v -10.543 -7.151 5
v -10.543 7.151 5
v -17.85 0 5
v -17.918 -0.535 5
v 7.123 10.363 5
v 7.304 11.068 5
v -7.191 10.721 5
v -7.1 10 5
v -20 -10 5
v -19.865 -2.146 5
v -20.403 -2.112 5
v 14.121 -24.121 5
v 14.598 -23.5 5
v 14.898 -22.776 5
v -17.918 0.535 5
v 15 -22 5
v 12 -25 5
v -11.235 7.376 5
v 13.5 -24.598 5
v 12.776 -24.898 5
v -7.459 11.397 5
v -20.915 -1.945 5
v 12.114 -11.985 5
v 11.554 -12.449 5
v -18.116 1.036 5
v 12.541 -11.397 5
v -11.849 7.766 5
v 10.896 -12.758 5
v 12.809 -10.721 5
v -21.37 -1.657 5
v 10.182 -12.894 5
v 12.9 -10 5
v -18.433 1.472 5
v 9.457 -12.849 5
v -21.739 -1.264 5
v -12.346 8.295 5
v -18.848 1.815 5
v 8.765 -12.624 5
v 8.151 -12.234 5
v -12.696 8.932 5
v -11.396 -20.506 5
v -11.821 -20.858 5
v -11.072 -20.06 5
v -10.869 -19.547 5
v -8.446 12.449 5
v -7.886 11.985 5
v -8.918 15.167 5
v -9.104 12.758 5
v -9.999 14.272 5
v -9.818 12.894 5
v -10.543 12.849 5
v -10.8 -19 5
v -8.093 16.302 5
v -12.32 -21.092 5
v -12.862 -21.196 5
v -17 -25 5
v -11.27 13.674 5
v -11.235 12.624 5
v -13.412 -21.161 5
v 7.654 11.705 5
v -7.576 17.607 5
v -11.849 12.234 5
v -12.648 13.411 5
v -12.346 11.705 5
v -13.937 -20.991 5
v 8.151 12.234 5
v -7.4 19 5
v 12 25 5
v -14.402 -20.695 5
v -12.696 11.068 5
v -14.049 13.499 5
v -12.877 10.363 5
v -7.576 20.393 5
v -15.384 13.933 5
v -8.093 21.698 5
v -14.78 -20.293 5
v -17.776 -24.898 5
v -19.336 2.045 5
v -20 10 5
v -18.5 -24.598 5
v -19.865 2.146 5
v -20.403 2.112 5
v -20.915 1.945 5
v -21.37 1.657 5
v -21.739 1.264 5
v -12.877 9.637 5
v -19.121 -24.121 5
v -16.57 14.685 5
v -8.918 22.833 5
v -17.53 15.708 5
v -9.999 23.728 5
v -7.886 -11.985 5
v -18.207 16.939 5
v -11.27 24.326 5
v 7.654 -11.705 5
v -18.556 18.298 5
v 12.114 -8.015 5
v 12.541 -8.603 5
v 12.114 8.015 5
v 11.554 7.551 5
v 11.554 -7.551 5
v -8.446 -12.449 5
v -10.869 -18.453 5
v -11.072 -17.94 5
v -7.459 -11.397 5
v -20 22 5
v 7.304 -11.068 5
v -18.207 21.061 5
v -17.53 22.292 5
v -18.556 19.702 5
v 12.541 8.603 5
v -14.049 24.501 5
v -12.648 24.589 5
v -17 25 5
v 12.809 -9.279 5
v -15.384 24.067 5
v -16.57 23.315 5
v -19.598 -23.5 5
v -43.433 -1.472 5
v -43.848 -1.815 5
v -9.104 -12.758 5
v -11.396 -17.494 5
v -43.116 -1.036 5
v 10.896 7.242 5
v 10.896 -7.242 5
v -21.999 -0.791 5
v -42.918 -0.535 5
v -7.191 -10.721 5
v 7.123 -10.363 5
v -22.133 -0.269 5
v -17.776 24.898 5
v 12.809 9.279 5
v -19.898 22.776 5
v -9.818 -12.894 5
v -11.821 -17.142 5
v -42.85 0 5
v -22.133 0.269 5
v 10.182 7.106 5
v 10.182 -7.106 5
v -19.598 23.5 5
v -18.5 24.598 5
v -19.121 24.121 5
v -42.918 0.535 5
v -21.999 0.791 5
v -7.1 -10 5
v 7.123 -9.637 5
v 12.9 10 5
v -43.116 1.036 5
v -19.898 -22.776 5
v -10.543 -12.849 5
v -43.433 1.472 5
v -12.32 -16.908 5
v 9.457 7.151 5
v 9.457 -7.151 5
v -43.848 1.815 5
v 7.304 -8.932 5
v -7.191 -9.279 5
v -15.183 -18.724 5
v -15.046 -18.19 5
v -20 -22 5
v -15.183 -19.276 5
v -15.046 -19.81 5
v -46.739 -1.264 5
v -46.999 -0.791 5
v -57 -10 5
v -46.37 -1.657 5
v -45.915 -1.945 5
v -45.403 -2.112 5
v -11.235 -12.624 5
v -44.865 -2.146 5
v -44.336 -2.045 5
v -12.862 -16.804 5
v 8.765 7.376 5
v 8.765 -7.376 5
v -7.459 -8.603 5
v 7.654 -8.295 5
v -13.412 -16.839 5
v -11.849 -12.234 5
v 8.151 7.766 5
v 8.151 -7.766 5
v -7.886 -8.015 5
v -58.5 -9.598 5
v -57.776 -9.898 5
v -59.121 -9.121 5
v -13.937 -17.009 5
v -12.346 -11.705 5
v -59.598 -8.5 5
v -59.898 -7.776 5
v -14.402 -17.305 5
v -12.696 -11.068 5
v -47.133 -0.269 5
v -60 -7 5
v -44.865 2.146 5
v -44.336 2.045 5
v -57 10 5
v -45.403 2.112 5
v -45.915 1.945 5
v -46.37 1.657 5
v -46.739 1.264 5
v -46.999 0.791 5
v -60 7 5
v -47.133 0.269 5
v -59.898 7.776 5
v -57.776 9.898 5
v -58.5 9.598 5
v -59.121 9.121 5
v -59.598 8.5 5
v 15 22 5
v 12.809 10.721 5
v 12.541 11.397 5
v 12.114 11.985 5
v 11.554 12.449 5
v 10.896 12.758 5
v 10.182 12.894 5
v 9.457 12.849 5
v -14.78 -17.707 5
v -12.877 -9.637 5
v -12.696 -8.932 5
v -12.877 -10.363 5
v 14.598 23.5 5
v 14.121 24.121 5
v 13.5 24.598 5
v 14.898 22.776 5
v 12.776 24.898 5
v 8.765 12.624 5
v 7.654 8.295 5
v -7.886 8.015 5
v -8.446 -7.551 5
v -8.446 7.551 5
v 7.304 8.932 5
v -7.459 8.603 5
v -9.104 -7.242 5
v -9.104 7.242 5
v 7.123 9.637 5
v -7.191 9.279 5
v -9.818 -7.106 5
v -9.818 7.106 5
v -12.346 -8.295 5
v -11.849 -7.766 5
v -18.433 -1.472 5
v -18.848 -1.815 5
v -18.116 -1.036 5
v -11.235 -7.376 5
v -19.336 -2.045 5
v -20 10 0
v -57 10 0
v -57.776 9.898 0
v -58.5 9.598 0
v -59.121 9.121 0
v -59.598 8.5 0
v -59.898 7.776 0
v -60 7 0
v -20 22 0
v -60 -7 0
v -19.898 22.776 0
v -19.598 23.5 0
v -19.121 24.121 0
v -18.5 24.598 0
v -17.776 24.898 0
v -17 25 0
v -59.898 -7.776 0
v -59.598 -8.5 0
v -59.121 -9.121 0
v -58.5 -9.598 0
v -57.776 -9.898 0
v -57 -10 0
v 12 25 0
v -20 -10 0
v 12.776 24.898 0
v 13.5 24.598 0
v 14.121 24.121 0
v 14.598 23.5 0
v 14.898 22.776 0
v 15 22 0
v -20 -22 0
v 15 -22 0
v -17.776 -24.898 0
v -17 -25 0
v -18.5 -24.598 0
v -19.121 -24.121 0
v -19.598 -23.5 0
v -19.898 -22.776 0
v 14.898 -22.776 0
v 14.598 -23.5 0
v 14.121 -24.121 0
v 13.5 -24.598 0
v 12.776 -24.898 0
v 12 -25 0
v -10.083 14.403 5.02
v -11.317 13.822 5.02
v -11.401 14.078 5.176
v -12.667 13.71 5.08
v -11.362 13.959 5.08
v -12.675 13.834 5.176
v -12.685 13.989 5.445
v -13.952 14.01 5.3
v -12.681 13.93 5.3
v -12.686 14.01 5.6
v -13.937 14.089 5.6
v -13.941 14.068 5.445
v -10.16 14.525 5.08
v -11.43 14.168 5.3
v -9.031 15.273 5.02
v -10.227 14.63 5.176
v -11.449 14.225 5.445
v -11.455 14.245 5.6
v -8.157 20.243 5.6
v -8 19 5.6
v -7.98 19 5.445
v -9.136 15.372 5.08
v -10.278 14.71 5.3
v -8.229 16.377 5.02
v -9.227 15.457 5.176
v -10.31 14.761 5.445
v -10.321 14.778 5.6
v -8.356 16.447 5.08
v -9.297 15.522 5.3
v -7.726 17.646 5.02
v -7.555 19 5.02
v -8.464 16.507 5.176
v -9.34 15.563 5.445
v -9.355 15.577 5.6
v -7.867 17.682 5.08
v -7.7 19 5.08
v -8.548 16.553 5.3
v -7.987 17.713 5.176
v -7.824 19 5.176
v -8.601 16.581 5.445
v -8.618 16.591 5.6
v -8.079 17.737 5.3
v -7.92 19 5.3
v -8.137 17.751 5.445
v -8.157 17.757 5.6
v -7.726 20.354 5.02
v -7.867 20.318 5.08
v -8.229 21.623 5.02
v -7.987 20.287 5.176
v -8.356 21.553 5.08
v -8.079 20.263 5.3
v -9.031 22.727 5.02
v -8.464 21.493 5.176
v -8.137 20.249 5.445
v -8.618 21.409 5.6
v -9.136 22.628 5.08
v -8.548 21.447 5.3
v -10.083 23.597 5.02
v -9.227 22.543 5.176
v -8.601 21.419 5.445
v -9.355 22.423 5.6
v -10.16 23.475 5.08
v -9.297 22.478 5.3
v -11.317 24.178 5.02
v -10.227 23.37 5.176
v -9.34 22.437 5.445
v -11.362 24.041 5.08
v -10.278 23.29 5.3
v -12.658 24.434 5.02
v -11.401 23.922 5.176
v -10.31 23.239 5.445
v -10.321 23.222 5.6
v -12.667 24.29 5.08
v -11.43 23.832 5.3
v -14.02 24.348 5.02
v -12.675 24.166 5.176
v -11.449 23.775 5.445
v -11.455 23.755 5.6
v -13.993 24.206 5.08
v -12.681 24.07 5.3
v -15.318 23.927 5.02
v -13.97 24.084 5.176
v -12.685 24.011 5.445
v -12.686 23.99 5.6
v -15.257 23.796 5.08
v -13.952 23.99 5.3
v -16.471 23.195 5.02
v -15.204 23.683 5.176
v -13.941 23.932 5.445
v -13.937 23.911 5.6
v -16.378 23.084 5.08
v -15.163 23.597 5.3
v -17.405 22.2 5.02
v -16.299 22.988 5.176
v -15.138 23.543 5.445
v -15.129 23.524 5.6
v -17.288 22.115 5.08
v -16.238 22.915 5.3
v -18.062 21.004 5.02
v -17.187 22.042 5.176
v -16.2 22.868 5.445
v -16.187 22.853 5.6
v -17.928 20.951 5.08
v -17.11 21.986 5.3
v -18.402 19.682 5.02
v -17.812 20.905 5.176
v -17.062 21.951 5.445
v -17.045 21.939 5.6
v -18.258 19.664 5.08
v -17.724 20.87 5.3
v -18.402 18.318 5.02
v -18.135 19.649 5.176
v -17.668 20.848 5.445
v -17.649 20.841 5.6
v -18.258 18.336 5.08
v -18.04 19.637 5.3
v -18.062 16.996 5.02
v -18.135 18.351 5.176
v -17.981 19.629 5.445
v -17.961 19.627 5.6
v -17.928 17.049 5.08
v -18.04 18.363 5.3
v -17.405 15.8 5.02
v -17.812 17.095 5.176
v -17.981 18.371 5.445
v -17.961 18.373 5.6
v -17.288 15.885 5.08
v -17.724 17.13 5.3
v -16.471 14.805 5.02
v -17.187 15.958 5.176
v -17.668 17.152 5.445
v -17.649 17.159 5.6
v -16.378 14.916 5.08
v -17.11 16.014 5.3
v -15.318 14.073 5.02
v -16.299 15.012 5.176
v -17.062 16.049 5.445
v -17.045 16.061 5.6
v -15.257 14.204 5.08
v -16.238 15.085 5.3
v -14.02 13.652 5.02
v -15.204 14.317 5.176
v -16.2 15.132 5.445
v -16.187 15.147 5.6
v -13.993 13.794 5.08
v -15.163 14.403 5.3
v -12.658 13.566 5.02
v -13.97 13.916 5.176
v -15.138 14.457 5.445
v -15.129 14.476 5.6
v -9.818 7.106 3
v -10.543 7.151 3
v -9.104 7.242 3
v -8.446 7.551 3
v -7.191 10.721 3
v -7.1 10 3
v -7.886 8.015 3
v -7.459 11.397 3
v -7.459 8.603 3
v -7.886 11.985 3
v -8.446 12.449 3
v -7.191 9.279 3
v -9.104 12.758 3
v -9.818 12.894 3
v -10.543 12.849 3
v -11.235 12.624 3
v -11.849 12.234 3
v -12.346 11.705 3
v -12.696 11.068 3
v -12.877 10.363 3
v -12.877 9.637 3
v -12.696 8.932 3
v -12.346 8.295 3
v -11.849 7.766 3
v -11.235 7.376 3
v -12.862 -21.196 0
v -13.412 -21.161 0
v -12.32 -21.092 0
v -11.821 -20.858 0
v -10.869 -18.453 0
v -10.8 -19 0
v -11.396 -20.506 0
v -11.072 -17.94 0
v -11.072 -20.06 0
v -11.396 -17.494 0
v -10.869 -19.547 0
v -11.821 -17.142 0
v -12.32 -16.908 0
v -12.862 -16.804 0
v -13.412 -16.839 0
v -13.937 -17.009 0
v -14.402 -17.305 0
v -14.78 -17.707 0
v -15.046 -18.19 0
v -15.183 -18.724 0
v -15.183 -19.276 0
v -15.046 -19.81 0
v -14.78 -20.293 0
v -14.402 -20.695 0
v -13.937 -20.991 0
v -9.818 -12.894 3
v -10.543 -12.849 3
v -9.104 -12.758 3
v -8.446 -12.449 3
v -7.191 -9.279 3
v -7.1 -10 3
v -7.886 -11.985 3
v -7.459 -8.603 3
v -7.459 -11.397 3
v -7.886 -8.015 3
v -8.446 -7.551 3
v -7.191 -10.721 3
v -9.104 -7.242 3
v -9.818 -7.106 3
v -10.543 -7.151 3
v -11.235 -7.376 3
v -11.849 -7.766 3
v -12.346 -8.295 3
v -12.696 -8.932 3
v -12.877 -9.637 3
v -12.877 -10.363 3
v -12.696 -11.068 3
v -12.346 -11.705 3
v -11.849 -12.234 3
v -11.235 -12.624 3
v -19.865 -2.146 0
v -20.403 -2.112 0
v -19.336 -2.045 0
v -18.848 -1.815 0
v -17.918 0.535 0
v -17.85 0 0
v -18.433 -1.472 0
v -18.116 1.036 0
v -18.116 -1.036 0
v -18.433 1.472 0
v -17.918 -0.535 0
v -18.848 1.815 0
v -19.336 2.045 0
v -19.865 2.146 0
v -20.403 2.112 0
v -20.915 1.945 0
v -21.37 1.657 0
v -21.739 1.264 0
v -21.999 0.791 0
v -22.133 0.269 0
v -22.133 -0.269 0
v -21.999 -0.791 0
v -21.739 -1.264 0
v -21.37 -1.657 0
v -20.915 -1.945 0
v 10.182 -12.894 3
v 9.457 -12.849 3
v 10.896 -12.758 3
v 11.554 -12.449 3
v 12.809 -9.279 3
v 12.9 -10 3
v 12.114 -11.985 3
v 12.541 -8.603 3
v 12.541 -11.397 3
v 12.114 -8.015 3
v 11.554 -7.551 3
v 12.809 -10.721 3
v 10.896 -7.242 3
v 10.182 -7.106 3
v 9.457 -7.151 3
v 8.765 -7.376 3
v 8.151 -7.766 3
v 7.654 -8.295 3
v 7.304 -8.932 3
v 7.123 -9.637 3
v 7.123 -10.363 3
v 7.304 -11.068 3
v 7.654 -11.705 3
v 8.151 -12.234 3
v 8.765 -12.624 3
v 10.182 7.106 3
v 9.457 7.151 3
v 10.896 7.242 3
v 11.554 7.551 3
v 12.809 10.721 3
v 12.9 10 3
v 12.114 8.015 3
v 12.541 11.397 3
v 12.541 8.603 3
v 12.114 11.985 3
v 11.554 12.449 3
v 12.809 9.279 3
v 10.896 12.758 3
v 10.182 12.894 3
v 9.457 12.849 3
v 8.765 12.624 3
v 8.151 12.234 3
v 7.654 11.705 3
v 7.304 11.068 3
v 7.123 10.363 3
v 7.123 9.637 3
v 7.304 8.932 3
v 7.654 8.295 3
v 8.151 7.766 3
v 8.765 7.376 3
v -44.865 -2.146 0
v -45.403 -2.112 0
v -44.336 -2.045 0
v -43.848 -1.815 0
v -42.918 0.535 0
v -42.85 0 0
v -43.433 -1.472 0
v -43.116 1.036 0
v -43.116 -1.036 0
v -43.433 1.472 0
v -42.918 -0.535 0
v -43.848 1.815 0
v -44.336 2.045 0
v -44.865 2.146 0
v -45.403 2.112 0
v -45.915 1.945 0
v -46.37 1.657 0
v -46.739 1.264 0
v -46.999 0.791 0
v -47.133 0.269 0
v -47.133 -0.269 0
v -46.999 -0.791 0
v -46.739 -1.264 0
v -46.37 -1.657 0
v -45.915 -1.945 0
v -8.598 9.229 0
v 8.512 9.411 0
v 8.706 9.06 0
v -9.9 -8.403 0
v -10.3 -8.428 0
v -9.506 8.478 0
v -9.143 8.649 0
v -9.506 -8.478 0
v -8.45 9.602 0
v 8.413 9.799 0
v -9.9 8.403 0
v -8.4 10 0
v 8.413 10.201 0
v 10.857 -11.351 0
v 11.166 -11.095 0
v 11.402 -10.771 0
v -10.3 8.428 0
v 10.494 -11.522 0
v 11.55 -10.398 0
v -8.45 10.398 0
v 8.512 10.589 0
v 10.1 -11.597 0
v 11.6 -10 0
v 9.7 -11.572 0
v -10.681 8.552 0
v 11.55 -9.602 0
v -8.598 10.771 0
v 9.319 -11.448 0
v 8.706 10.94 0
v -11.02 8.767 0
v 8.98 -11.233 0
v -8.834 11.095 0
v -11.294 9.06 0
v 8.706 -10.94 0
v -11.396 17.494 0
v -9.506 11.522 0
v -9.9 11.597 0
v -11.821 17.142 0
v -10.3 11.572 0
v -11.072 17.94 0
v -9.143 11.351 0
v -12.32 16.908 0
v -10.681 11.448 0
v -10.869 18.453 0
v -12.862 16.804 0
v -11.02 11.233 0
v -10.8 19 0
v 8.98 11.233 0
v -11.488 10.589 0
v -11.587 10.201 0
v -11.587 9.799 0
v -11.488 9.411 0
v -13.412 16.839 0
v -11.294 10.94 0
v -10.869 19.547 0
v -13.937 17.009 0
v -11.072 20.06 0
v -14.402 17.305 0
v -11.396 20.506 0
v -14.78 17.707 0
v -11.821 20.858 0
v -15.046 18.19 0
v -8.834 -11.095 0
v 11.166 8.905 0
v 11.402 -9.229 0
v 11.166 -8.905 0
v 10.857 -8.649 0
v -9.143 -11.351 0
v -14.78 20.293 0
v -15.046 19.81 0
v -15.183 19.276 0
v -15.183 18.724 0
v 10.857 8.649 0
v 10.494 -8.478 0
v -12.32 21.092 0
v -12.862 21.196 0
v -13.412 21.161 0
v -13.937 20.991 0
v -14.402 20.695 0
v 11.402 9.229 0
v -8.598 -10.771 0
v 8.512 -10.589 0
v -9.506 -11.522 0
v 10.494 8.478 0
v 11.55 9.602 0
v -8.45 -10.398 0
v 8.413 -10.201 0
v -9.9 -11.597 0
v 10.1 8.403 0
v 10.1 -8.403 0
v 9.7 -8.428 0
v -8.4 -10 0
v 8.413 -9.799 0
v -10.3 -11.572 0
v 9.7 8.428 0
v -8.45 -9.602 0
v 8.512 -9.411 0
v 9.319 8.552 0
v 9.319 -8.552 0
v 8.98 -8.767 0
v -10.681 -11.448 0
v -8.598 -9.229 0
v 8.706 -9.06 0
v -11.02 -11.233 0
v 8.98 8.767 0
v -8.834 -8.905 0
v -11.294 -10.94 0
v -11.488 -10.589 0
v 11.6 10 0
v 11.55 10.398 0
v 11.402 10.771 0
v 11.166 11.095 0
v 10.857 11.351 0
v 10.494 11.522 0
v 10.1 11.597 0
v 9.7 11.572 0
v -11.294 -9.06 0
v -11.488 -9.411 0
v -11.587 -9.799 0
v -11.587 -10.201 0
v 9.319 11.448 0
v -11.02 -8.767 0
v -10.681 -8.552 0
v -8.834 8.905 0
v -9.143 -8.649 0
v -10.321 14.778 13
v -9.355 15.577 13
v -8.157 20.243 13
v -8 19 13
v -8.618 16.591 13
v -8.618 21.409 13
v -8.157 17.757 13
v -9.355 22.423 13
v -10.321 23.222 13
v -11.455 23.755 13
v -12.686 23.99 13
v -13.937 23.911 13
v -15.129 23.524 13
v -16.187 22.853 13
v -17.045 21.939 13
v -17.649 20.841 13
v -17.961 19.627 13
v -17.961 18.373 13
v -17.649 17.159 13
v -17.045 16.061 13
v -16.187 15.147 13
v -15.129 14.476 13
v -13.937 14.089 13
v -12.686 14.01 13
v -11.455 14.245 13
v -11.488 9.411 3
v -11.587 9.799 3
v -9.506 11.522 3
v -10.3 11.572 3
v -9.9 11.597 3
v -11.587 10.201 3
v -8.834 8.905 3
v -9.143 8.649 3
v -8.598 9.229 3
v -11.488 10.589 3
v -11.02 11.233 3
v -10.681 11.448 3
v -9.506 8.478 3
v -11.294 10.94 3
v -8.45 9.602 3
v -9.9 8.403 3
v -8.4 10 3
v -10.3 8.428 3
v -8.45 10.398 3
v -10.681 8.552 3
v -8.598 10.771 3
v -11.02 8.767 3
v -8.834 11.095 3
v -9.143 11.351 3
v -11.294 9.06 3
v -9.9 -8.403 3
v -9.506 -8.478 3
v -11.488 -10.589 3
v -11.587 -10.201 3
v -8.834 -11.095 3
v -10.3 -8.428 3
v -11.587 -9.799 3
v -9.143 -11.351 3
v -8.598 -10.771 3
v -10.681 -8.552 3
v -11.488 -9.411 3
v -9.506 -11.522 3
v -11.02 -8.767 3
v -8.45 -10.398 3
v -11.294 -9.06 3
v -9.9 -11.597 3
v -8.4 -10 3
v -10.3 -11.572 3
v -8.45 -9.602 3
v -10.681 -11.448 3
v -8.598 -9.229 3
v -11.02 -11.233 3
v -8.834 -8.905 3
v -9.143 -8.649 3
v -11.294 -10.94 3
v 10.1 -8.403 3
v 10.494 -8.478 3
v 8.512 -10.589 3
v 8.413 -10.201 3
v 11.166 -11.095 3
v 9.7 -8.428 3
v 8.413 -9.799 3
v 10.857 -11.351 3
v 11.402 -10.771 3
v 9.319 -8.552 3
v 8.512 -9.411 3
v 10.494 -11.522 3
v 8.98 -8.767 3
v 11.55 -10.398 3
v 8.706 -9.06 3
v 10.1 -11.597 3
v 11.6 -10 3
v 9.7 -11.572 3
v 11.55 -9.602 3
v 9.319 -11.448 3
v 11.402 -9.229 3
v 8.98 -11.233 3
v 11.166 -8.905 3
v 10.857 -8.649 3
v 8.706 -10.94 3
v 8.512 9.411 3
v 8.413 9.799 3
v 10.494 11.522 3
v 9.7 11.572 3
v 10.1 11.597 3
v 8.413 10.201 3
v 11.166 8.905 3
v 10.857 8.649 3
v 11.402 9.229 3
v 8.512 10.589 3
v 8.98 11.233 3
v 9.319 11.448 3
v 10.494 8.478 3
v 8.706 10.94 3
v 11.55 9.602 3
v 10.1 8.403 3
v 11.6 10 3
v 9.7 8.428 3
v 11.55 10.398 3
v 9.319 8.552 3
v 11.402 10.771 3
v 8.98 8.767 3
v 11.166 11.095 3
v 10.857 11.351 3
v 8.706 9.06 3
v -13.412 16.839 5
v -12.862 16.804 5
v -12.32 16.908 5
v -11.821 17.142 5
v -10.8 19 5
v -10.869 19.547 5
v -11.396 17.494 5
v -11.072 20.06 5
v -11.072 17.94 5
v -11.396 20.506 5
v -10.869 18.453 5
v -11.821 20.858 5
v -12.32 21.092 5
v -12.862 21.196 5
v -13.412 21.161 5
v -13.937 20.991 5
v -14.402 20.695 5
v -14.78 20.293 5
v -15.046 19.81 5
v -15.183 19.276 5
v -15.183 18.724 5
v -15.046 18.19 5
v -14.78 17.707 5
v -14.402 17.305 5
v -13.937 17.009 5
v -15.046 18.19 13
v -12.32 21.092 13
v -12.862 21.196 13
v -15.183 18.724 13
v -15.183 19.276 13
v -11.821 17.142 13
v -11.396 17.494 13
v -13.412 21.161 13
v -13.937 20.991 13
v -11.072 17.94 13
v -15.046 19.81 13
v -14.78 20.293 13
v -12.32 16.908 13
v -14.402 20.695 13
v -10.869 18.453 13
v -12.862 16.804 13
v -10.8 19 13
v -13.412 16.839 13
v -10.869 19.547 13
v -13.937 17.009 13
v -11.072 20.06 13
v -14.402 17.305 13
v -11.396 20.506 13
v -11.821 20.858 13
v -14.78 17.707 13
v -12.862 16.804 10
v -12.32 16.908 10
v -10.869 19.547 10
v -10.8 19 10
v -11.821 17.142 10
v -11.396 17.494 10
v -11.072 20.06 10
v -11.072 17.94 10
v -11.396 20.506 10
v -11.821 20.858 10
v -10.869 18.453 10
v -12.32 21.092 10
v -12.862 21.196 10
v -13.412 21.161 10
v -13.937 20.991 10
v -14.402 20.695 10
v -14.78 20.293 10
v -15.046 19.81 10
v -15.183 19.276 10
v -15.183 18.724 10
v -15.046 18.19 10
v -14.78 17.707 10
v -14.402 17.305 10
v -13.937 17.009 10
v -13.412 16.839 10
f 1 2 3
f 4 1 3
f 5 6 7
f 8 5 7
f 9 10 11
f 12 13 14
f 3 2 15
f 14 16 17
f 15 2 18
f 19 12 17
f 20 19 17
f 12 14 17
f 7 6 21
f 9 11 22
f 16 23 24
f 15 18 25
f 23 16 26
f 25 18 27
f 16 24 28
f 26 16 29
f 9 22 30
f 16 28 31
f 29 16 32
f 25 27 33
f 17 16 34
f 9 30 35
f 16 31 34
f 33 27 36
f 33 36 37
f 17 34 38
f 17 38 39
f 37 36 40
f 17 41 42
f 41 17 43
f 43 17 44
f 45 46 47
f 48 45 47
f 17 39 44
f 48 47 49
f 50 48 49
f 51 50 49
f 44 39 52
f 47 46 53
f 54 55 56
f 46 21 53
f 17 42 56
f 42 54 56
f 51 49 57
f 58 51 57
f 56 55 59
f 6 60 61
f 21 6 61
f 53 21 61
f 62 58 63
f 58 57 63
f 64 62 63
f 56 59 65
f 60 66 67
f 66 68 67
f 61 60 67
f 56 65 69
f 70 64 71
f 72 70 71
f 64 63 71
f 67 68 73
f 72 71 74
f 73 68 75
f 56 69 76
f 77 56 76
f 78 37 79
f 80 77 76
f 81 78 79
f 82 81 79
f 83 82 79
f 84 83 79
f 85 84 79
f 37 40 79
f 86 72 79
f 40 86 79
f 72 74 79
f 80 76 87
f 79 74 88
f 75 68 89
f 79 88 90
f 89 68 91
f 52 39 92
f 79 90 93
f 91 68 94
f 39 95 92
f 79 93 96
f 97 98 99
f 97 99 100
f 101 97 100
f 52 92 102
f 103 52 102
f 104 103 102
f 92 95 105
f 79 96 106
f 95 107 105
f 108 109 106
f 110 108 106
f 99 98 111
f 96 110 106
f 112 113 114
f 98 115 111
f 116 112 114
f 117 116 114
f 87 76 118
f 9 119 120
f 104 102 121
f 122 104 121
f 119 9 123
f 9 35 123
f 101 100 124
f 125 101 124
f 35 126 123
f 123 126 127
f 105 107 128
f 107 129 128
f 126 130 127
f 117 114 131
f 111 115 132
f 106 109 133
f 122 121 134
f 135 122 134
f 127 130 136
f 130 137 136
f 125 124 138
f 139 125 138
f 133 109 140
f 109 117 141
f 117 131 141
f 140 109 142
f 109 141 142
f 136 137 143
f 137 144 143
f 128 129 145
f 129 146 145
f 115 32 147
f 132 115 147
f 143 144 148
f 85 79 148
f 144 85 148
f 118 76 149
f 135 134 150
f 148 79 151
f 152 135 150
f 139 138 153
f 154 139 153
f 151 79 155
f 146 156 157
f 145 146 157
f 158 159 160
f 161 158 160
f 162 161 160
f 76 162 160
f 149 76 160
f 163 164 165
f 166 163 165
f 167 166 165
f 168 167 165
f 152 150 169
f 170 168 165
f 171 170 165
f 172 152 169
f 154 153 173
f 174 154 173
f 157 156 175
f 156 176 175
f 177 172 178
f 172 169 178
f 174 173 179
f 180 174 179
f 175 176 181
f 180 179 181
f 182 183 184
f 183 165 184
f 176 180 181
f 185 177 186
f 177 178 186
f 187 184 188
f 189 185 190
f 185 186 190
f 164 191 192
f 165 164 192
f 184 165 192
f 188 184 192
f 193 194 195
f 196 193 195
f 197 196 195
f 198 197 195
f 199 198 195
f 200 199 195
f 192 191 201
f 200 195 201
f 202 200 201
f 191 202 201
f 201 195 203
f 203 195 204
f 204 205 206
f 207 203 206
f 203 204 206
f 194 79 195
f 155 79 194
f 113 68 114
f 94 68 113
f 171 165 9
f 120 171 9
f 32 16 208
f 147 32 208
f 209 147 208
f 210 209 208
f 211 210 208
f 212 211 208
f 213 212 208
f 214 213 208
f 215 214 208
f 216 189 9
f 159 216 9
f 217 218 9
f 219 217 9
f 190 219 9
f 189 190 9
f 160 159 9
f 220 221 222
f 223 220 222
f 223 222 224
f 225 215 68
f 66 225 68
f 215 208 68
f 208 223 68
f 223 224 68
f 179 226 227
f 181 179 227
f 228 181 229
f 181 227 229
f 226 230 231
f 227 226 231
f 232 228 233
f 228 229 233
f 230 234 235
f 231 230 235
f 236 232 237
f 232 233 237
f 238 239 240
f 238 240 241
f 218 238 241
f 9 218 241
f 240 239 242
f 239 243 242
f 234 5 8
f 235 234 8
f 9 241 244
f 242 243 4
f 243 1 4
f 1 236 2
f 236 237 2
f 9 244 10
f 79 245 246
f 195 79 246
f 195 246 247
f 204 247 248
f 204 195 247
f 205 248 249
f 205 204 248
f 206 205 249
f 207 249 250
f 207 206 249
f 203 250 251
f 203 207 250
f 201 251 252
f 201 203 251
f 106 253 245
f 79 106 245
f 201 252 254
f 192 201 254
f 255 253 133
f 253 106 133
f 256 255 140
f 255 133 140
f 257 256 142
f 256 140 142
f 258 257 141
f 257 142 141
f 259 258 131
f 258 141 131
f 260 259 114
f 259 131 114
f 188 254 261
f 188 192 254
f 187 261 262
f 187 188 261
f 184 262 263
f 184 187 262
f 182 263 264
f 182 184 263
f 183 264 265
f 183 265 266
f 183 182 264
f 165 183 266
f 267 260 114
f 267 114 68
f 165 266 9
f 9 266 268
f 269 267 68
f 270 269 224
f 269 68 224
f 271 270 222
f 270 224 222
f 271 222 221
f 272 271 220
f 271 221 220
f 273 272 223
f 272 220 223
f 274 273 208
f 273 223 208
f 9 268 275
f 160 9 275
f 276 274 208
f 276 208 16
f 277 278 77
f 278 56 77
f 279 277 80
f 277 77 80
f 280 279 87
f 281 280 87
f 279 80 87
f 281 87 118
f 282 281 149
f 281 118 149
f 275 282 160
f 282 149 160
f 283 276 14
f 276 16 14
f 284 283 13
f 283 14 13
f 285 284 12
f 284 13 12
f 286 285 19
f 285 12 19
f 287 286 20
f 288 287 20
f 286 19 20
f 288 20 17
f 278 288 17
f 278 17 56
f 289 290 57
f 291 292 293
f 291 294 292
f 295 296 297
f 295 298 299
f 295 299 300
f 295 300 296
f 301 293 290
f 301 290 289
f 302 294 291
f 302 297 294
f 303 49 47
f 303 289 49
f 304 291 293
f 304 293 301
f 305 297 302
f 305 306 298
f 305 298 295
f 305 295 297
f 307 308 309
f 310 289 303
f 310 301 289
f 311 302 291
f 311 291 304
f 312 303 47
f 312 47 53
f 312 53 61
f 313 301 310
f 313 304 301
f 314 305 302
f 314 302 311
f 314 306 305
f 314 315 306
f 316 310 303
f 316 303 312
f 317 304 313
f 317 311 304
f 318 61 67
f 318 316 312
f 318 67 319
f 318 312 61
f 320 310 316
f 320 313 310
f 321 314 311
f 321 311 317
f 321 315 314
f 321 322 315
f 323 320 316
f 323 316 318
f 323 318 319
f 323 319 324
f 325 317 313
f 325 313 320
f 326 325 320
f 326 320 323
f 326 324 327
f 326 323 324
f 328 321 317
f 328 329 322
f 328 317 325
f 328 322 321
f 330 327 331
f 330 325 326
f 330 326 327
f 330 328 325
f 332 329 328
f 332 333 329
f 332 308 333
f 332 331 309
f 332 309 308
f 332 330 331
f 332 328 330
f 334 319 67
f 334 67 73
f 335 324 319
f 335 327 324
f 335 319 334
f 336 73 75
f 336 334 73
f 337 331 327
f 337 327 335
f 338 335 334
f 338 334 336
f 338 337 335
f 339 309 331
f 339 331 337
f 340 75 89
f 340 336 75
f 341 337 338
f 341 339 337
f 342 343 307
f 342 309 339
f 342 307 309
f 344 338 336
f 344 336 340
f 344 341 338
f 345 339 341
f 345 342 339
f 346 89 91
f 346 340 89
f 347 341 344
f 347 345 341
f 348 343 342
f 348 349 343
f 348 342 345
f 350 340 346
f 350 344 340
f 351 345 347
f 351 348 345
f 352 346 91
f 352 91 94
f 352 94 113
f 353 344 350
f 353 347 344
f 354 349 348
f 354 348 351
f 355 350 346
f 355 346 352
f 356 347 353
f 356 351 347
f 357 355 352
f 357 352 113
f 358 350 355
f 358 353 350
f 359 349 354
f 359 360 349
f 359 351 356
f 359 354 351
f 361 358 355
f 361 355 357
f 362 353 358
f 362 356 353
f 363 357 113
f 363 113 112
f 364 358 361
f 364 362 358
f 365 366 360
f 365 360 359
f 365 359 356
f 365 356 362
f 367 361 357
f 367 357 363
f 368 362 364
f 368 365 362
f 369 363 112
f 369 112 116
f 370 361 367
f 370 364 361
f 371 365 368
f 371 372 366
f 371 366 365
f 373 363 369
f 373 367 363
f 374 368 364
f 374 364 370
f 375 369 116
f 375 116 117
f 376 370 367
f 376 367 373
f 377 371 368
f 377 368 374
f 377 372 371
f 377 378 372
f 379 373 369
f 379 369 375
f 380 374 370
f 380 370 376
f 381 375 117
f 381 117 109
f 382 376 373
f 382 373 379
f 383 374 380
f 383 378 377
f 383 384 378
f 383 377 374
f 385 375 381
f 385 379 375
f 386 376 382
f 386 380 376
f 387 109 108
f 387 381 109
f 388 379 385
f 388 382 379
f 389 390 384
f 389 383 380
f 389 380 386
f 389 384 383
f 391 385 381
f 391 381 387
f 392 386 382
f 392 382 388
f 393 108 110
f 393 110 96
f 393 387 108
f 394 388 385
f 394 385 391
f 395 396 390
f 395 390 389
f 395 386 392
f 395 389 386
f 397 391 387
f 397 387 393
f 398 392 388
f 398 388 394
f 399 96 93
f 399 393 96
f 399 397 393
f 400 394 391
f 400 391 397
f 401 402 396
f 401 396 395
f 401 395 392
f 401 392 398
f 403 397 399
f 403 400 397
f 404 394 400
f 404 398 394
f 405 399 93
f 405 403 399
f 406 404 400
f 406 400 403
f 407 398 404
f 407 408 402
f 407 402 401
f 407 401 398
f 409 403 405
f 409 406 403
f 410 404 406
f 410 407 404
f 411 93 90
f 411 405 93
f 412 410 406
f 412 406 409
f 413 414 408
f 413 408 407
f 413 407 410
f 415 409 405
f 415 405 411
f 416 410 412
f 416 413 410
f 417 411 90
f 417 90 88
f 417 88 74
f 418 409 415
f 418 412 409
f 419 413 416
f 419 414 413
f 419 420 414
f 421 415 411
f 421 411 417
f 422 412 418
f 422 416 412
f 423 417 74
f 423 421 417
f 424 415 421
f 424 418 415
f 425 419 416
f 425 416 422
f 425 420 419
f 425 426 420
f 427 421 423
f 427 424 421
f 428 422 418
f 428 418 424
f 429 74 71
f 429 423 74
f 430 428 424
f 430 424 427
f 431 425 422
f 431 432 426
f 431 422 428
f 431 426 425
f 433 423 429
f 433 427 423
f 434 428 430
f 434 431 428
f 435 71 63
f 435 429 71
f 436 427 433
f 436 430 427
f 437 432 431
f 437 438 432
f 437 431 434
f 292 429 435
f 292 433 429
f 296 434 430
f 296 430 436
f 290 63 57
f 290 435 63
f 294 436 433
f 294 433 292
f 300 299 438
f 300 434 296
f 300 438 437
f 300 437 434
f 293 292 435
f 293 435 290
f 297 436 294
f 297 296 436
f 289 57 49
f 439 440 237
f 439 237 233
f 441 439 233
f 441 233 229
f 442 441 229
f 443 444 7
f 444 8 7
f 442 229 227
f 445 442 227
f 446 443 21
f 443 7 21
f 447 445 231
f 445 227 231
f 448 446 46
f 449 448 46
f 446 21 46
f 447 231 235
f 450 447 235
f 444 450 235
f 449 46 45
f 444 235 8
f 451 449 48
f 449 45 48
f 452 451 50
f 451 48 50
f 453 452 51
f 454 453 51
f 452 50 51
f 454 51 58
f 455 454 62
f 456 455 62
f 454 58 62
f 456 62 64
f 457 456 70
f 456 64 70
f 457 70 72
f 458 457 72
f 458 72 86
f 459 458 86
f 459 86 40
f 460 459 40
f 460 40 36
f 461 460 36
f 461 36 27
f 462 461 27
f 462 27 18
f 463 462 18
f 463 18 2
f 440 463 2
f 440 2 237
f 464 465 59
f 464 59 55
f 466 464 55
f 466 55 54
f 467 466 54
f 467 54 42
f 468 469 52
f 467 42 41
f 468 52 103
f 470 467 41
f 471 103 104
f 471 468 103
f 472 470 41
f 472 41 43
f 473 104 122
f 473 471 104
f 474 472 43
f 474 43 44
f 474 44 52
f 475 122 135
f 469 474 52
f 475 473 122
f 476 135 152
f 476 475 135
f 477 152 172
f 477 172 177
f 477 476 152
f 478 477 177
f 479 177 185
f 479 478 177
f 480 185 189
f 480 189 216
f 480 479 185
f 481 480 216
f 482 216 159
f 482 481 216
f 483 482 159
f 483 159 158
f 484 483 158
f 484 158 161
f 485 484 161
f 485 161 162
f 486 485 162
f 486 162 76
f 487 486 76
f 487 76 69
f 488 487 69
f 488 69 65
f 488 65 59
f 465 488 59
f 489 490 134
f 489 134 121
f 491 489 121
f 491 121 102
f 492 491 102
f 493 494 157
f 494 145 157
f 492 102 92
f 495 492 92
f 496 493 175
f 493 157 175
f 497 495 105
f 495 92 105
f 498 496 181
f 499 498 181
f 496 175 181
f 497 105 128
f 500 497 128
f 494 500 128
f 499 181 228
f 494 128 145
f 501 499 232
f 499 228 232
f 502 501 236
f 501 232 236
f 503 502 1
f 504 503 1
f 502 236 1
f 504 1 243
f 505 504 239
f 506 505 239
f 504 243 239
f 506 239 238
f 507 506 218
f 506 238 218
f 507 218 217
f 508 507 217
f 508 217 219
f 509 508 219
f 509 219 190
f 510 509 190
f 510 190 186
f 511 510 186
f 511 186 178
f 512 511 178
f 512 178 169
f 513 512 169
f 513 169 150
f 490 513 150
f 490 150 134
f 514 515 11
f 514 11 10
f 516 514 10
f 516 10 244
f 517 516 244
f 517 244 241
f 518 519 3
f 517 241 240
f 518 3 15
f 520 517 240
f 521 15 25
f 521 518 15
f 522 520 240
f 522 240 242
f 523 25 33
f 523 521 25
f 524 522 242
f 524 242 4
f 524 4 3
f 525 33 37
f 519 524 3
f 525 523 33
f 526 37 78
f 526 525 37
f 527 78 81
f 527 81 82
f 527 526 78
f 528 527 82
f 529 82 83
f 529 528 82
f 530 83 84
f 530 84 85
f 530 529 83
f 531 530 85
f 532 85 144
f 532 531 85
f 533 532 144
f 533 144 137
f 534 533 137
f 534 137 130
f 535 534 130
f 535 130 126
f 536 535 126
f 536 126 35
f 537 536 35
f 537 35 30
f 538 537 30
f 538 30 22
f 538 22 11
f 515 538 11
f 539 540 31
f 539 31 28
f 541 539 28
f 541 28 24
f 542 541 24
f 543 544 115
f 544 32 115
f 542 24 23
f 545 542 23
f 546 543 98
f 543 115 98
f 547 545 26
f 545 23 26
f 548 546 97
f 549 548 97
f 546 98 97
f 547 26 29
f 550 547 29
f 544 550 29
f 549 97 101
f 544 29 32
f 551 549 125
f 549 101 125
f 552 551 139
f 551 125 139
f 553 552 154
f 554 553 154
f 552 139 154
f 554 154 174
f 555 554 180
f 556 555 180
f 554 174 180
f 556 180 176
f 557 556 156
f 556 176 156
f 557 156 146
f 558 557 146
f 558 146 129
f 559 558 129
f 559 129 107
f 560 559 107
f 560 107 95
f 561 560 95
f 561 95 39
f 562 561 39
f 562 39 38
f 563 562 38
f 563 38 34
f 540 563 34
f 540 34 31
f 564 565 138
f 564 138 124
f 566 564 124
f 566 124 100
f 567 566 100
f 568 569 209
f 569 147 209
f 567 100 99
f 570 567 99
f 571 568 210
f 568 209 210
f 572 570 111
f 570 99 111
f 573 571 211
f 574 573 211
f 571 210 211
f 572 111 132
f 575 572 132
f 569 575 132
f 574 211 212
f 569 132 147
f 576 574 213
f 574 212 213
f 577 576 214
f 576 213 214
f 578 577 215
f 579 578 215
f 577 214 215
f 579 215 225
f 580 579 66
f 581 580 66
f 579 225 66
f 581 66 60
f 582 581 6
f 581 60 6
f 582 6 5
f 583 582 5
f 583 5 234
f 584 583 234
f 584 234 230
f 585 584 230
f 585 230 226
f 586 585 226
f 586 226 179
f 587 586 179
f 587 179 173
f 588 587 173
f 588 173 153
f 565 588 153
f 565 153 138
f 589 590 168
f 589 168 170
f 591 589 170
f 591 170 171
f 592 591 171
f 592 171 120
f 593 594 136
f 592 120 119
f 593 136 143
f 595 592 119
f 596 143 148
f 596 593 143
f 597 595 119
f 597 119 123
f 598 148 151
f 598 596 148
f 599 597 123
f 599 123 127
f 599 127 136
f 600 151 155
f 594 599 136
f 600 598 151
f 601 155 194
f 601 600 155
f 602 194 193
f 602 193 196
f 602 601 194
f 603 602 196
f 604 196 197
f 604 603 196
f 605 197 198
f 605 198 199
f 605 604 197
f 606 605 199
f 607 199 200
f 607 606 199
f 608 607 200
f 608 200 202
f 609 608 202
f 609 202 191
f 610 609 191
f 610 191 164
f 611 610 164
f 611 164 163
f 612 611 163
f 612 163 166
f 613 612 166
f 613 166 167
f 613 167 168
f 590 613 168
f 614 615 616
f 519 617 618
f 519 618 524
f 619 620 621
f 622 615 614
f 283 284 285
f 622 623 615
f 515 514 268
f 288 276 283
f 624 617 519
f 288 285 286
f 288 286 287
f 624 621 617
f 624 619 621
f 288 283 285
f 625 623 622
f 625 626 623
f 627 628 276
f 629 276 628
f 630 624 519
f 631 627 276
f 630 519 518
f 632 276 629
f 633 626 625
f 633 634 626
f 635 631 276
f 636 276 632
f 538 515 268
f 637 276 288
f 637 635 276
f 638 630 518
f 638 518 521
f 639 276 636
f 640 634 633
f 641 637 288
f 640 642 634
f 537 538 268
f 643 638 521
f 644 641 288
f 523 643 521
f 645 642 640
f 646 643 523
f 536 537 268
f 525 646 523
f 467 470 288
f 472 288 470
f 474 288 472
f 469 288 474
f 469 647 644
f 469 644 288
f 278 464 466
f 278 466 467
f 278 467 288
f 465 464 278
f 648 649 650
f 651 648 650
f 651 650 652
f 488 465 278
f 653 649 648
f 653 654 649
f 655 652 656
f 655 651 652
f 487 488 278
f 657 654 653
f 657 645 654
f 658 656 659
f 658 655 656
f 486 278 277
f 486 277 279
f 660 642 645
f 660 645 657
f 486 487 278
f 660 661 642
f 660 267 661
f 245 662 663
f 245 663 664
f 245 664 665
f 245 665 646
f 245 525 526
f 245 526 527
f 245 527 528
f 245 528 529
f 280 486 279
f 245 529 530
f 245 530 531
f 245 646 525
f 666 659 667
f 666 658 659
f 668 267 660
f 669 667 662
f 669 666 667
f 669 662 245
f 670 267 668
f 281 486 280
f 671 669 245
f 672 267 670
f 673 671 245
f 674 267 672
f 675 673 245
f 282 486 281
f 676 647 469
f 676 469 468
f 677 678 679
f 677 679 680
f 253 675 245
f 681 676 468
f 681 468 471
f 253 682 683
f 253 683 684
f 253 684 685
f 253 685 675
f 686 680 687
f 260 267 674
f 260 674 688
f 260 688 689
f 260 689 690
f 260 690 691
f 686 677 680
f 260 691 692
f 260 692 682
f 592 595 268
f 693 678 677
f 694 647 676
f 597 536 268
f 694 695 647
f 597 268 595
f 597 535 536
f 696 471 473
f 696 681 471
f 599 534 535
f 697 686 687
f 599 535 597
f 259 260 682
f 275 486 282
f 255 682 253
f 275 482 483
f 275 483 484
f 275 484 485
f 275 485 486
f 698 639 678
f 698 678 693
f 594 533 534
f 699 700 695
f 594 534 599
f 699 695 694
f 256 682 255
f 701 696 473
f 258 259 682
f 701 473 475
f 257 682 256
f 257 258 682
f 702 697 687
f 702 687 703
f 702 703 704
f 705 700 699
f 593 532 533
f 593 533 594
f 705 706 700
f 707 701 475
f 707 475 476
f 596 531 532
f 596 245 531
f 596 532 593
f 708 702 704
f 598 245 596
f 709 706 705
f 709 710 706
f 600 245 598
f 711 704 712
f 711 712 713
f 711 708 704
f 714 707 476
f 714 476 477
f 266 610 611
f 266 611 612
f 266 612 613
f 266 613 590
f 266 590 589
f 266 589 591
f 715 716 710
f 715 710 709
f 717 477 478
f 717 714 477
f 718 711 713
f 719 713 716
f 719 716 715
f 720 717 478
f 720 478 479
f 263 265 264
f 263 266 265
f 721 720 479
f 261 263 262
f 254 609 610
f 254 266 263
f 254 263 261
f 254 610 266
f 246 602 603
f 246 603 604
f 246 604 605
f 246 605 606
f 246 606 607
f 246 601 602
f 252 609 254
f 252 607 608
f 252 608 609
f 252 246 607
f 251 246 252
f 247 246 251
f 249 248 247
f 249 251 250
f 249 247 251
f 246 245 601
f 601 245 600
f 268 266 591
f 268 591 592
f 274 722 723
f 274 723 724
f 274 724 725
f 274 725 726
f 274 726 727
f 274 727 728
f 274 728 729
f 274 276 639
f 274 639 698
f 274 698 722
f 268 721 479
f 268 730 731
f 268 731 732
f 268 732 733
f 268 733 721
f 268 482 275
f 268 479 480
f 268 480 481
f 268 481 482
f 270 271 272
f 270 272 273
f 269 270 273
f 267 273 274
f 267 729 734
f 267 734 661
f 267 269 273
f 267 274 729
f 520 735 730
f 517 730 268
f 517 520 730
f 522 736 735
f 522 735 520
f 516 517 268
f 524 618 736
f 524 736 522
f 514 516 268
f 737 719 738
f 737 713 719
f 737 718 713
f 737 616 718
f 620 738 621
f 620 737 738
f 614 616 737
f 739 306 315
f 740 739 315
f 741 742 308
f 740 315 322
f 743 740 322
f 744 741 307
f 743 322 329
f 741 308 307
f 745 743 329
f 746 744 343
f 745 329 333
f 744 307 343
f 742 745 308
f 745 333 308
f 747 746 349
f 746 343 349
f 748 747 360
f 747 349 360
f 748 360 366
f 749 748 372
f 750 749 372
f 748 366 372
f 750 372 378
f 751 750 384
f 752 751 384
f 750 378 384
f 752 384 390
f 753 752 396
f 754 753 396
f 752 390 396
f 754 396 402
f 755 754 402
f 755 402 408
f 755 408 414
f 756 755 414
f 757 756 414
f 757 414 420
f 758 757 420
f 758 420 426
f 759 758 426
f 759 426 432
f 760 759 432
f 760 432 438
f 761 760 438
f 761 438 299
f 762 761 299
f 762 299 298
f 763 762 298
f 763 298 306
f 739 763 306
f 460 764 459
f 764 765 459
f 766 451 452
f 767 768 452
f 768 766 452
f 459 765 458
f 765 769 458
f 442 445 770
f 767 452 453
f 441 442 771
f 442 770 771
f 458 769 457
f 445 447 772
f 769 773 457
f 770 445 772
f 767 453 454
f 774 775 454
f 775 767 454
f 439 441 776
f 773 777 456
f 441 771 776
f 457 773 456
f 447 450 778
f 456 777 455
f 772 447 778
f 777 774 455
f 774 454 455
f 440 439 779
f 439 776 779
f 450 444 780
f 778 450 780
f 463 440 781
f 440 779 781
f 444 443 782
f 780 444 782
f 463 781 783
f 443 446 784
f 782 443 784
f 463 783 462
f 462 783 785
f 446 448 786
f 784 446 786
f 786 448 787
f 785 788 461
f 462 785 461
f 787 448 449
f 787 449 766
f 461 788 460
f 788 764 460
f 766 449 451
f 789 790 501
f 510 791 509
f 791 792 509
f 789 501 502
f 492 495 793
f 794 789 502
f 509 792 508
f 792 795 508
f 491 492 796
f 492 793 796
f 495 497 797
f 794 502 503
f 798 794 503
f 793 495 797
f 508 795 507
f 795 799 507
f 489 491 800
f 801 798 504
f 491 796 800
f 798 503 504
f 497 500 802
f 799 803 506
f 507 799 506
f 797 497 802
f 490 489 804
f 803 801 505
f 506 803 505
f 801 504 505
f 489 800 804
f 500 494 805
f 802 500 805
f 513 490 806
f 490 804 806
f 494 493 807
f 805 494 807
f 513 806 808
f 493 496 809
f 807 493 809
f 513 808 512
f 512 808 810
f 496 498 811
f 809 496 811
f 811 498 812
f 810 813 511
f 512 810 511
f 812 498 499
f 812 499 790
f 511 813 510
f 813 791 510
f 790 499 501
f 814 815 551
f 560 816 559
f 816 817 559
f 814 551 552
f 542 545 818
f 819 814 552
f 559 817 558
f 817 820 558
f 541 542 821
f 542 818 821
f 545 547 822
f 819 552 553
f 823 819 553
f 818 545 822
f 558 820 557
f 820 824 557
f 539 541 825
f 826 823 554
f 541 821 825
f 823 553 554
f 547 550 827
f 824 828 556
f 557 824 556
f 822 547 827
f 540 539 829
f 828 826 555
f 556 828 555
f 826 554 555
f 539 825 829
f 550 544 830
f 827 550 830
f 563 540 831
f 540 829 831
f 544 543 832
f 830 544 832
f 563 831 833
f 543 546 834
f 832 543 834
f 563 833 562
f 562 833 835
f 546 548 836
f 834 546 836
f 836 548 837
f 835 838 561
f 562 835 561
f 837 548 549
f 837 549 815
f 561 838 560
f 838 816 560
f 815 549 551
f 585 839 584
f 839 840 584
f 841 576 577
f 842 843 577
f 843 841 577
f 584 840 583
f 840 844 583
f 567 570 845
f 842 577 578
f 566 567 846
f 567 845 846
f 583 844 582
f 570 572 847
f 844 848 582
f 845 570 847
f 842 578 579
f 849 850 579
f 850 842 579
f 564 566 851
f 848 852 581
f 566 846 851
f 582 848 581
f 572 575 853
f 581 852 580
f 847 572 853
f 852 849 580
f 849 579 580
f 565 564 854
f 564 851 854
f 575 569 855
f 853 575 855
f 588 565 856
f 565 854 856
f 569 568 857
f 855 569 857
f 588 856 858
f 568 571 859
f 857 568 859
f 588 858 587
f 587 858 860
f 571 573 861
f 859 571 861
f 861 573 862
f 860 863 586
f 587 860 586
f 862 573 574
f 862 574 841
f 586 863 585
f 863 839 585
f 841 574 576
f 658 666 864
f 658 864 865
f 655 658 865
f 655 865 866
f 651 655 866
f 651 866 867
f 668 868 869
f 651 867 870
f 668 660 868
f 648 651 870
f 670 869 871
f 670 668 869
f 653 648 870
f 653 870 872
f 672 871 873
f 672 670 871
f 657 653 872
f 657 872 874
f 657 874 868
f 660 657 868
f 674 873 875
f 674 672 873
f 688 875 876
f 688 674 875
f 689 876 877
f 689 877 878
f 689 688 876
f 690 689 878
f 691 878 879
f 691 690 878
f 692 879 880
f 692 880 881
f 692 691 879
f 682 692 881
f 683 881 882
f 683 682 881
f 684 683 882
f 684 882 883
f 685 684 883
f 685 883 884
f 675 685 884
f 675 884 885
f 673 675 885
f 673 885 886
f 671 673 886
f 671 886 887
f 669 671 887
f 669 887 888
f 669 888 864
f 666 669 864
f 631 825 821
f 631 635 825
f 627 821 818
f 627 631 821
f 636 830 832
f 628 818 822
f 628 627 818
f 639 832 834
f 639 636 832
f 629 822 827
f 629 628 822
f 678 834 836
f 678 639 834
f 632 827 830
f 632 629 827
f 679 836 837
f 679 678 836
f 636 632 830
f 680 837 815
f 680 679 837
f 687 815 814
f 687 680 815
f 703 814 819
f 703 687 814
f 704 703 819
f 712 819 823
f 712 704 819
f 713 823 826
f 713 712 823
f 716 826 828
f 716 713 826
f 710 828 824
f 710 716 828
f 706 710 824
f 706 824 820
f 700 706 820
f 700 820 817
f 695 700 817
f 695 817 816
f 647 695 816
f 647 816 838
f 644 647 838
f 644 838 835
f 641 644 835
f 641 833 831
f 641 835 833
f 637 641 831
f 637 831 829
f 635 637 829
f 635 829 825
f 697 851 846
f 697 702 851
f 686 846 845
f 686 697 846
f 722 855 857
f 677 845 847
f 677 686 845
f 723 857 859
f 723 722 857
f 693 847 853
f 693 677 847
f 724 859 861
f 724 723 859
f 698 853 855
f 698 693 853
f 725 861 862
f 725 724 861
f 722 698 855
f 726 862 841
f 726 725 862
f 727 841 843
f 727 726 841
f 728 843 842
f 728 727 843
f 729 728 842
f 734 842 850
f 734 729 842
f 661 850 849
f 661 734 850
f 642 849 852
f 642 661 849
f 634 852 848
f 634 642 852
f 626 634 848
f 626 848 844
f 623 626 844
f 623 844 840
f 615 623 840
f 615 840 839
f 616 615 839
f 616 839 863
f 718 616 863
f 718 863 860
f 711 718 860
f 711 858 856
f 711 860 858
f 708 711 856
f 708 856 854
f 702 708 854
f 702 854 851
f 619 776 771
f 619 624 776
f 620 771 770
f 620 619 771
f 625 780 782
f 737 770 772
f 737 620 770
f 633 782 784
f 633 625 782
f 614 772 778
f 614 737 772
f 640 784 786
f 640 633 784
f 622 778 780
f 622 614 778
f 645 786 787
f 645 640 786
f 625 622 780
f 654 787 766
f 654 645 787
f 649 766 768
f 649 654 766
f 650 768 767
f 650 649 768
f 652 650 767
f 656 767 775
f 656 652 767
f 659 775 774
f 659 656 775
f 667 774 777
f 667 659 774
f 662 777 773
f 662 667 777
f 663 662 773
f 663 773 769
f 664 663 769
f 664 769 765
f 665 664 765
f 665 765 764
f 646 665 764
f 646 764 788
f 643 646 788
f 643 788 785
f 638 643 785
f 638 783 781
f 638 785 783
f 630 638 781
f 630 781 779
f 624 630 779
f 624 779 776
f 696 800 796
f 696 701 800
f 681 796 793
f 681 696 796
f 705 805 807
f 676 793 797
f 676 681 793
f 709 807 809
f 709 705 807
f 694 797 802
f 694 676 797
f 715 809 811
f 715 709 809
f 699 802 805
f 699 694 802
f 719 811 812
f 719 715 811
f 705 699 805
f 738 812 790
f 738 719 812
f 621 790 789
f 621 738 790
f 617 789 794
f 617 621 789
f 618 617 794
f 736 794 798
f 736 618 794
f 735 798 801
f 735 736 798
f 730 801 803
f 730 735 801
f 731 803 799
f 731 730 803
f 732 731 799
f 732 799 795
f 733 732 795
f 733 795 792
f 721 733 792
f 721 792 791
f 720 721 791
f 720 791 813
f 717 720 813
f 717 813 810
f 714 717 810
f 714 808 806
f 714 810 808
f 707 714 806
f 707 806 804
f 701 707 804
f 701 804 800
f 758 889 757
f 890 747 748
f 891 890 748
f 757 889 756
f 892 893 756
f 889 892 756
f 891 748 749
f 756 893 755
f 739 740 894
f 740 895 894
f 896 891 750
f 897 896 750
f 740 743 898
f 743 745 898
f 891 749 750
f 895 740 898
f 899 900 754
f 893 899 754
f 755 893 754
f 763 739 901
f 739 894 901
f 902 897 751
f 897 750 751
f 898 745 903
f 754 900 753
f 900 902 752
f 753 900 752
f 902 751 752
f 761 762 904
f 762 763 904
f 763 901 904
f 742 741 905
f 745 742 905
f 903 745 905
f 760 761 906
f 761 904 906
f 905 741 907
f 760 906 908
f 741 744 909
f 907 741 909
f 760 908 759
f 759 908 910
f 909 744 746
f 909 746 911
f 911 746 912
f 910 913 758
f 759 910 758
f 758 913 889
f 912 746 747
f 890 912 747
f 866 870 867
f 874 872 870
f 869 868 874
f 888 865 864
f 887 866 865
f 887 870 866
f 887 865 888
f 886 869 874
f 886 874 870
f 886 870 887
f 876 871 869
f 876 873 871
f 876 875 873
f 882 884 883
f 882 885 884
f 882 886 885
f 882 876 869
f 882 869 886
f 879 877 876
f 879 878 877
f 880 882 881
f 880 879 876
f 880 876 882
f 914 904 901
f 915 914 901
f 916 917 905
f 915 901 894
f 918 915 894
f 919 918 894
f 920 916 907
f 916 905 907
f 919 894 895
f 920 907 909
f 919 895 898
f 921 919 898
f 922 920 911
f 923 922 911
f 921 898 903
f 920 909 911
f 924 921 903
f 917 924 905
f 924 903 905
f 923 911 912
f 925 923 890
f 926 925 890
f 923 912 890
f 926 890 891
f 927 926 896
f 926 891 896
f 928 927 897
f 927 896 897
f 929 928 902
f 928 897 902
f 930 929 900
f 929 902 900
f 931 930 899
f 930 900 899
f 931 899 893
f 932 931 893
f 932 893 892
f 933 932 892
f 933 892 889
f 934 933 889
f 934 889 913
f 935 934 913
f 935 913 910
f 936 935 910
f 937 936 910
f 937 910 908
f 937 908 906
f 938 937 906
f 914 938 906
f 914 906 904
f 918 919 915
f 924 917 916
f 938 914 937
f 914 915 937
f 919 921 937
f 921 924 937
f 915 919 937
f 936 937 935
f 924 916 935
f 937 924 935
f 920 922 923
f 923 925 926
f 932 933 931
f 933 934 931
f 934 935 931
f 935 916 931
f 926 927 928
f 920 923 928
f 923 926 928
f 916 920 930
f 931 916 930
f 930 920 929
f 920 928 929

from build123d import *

# Parameters (mm, degrees)
SKETCH_R        = 1.6
SKETCH_R_2      = 2.15
SKETCH_R_3      = 2.2
PAD_DEPTH       = 5
SKETCH001_R     = 2.9
POCKET_DEPTH    = 2
SKETCH002_R     = 5
PAD001_DEPTH    = 8
SKETCH003_R     = 2.2
POCKET001_DEPTH = 3
FILLET_R        = 0.6
FILLET001_R     = 3
FILLET002_R     = 3


with BuildPart() as part:
    # Sketch → Pad (new body)
    with BuildSketch(Plane.XY):
        Polygon((-20, 25), (15, 25), (15, -25), (-20, -25), (-20, -10), (-60, -10), (-60, 10), (-20, 10), align=None)
        with Locations((-10, 10)):
            Circle(SKETCH_R, mode=Mode.SUBTRACT)
        with Locations((10, 10)):
            Circle(SKETCH_R, mode=Mode.SUBTRACT)
        with Locations((10, -10)):
            Circle(SKETCH_R, mode=Mode.SUBTRACT)
        with Locations((-10, -10)):
            Circle(SKETCH_R, mode=Mode.SUBTRACT)
        with Locations((-20, 0)):
            Circle(SKETCH_R_2, mode=Mode.SUBTRACT)
        with Locations((-45, 0)):
            Circle(SKETCH_R_2, mode=Mode.SUBTRACT)
        with Locations((-13, 19)):
            Circle(SKETCH_R_3, mode=Mode.SUBTRACT)
        with Locations((-13, -19)):
            Circle(SKETCH_R_3, mode=Mode.SUBTRACT)
    extrude(amount=PAD_DEPTH)

    # Sketch001 → Pocket (cut)
    with BuildSketch(Plane.XY.offset(5)):
        with Locations((-10, 10)):
            Circle(SKETCH001_R)
        with Locations((10, 10)):
            Circle(SKETCH001_R)
        with Locations((10, -10)):
            Circle(SKETCH001_R)
        with Locations((-10, -10)):
            Circle(SKETCH001_R)
    extrude(amount=-POCKET_DEPTH, mode=Mode.SUBTRACT)

    # Sketch002 → Pad001 (new body)
    with BuildSketch(Plane.XY.offset(5)):
        with Locations((-13, 19)):
            Circle(SKETCH002_R)
    extrude(amount=PAD001_DEPTH)

    # Sketch003 → Pocket001 (cut)
    with BuildSketch(Plane.XY.offset(13)):
        with Locations((-13, 19)):
            Circle(SKETCH003_R)
    extrude(amount=-POCKET001_DEPTH, mode=Mode.SUBTRACT)

    # Fillet
    fillet_edges = [part.edges().sort_by_distance(p)[0] for p in [
        (-18, 19, 5),
    ]]
    fillet(fillet_edges, radius=FILLET_R)

    # Fillet001
    fillet001_edges = [part.edges().sort_by_distance(p)[0] for p in [
        (-20, -25, 2.5),
        (-20, 25, 2.5),
        (15, 25, 2.5),
        (15, -25, 2.5),
    ]]
    fillet(fillet001_edges, radius=FILLET001_R)

    # Fillet002
    fillet002_edges = [part.edges().sort_by_distance(p)[0] for p in [
        (-60, 10, 2.5),
        (-60, -10, 2.5),
    ]]
    fillet(fillet002_edges, radius=FILLET002_R)


solid = part.part
